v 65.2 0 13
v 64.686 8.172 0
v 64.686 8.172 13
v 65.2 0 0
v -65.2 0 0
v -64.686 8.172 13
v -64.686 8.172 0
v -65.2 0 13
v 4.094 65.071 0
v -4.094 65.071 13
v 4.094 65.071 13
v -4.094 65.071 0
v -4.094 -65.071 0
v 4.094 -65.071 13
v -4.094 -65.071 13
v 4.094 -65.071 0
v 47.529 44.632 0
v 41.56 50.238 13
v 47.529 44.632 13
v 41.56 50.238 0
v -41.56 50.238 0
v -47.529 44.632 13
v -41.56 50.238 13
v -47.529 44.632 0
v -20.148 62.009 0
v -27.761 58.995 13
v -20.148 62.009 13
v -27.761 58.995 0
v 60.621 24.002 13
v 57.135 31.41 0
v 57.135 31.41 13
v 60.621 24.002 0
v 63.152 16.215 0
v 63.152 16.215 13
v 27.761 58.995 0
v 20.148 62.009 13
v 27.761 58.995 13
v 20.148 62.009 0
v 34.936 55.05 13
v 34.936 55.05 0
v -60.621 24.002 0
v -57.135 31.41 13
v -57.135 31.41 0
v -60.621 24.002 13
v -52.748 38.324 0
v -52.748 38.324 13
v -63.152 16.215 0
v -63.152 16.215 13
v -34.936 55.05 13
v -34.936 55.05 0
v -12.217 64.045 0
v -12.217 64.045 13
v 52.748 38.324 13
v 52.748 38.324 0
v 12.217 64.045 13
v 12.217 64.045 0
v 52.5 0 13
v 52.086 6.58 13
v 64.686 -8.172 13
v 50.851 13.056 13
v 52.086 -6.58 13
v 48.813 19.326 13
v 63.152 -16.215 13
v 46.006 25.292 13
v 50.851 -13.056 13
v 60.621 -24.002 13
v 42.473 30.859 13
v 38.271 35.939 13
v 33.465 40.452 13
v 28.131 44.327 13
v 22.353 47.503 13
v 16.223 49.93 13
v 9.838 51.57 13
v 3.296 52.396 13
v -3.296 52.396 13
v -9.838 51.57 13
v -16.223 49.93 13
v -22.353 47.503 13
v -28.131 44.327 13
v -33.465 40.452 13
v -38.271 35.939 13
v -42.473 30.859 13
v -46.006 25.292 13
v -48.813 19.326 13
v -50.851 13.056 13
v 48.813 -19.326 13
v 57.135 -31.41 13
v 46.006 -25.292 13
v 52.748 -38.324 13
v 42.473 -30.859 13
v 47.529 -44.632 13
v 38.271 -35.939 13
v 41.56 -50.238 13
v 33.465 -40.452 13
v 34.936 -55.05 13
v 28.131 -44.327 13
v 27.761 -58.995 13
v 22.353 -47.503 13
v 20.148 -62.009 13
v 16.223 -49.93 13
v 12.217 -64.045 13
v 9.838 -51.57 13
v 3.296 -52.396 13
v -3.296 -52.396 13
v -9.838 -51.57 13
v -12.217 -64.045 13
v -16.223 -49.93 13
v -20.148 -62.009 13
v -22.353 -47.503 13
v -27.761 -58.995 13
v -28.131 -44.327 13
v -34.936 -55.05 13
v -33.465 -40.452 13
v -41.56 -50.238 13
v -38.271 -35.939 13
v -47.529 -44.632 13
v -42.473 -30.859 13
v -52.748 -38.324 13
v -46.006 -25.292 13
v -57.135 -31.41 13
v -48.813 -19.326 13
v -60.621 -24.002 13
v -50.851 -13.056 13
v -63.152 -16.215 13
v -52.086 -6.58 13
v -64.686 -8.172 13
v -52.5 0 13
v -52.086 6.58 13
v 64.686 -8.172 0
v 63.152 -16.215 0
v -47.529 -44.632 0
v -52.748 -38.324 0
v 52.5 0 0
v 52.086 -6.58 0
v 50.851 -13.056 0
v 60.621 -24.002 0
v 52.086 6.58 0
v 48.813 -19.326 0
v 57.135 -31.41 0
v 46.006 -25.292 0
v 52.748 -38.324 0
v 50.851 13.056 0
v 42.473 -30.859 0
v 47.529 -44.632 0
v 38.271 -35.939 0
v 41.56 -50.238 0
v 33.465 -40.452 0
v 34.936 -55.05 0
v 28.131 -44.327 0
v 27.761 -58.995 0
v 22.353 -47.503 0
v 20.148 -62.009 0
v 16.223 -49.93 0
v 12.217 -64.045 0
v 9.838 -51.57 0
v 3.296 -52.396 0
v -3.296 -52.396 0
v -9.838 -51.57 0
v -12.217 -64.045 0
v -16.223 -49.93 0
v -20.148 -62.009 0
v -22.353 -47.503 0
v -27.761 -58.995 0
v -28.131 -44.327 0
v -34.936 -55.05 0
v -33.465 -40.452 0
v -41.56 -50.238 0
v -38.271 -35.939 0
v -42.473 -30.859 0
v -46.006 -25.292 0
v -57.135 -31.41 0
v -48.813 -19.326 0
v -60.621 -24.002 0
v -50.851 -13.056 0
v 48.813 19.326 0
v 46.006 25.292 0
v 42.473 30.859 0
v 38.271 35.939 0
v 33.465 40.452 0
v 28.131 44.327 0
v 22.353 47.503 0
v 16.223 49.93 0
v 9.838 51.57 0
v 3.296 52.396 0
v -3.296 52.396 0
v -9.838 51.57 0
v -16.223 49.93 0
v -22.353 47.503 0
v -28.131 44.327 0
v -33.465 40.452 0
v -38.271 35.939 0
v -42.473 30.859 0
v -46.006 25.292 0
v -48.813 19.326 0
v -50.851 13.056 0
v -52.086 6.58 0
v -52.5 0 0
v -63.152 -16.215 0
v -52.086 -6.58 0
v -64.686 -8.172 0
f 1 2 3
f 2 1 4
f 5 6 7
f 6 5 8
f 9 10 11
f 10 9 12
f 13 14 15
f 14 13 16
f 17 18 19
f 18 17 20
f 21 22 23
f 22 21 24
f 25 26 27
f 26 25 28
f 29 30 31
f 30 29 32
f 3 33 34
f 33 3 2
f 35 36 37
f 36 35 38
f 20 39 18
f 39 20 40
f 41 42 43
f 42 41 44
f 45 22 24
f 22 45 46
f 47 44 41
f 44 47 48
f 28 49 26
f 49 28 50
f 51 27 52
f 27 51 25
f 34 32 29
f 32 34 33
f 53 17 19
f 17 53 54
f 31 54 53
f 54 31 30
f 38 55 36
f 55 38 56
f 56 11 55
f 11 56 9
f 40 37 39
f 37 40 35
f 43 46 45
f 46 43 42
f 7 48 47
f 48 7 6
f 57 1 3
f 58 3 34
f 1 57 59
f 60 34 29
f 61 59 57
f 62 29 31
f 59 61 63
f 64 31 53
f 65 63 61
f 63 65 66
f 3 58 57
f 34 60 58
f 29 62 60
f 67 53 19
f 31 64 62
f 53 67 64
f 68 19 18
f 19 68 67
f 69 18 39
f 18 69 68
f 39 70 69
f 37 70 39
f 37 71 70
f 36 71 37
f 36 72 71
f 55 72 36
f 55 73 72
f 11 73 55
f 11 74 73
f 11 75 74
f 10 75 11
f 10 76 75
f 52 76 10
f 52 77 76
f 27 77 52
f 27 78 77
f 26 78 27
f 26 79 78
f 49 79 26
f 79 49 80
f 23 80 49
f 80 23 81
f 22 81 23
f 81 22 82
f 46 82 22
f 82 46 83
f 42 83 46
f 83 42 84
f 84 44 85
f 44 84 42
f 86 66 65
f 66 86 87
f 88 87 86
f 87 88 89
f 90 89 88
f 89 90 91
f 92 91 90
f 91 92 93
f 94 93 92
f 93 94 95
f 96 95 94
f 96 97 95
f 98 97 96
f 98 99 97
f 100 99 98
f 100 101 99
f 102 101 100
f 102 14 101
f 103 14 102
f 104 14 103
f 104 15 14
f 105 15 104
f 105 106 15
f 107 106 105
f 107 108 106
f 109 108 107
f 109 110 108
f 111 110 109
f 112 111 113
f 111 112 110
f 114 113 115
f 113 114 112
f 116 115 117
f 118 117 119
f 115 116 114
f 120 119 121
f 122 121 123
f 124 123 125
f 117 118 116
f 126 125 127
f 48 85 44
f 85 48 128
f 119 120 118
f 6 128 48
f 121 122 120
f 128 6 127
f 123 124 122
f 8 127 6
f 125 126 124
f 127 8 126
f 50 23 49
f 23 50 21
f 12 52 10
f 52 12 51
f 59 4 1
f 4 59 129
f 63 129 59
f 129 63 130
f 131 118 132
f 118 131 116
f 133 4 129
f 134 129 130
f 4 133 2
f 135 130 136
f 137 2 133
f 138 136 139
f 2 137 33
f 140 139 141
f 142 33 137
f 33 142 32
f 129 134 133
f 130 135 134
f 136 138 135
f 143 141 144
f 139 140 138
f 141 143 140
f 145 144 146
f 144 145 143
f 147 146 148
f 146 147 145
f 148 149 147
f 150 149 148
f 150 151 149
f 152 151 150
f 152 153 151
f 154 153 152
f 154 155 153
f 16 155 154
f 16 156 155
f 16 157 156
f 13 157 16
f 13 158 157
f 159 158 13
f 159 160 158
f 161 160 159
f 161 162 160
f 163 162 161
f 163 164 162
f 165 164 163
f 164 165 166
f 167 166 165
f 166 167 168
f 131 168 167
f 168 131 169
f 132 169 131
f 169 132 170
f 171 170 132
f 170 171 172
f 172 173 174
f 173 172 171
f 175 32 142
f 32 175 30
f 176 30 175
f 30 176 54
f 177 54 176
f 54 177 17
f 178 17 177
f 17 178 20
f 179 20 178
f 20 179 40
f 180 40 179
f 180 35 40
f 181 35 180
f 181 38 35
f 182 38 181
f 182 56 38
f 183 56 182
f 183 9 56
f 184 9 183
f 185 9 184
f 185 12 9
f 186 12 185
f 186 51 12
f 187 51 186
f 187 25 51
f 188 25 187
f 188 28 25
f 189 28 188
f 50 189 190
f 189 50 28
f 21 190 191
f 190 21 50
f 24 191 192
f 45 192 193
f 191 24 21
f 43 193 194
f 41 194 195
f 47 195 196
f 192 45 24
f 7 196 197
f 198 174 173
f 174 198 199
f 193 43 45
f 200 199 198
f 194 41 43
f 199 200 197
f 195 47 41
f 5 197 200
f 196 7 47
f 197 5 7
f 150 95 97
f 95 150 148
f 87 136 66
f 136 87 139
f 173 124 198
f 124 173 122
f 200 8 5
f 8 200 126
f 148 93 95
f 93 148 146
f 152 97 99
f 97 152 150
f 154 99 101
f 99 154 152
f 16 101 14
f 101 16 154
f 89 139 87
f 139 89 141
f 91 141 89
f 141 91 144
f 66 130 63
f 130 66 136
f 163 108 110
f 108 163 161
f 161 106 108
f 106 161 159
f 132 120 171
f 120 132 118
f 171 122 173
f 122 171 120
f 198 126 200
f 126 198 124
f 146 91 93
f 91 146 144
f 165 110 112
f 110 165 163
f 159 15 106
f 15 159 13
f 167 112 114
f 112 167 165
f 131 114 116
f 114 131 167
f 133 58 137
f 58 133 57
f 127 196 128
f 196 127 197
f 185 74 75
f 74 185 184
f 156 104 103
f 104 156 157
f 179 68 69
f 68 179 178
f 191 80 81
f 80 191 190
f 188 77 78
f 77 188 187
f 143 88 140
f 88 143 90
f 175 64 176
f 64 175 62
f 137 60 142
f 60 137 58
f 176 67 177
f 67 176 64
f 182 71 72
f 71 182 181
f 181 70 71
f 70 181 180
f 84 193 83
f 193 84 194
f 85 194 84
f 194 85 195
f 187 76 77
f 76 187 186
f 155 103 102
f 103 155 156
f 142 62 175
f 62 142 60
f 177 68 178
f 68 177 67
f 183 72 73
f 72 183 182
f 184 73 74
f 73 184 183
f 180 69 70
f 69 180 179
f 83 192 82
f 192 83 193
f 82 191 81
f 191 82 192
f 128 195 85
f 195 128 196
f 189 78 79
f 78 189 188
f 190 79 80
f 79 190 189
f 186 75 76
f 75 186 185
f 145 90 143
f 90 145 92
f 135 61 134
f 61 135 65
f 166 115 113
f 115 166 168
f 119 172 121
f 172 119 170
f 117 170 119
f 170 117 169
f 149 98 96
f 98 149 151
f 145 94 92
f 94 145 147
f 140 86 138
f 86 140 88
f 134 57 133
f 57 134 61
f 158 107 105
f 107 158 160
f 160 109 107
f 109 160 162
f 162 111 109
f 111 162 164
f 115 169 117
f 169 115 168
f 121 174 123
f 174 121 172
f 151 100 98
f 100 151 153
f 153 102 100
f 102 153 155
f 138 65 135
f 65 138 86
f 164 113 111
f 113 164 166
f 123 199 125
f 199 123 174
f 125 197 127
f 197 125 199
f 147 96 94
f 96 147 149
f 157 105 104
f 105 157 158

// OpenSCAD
$fn = 50;


difference() {
	union() {
		translate(v = [0, 0, 0]) {
			rotate(a = [0, 0, 0]) {
				cylinder(h = 13, r = 65.2000000000);
			}
		}
	}
	union() {
		translate(v = [0, 0, 0]) {
			rotate(a = [0, 0, 0]) {
				cylinder(h = 13, r = 52.5000000000);
			}
		}
	}
}
